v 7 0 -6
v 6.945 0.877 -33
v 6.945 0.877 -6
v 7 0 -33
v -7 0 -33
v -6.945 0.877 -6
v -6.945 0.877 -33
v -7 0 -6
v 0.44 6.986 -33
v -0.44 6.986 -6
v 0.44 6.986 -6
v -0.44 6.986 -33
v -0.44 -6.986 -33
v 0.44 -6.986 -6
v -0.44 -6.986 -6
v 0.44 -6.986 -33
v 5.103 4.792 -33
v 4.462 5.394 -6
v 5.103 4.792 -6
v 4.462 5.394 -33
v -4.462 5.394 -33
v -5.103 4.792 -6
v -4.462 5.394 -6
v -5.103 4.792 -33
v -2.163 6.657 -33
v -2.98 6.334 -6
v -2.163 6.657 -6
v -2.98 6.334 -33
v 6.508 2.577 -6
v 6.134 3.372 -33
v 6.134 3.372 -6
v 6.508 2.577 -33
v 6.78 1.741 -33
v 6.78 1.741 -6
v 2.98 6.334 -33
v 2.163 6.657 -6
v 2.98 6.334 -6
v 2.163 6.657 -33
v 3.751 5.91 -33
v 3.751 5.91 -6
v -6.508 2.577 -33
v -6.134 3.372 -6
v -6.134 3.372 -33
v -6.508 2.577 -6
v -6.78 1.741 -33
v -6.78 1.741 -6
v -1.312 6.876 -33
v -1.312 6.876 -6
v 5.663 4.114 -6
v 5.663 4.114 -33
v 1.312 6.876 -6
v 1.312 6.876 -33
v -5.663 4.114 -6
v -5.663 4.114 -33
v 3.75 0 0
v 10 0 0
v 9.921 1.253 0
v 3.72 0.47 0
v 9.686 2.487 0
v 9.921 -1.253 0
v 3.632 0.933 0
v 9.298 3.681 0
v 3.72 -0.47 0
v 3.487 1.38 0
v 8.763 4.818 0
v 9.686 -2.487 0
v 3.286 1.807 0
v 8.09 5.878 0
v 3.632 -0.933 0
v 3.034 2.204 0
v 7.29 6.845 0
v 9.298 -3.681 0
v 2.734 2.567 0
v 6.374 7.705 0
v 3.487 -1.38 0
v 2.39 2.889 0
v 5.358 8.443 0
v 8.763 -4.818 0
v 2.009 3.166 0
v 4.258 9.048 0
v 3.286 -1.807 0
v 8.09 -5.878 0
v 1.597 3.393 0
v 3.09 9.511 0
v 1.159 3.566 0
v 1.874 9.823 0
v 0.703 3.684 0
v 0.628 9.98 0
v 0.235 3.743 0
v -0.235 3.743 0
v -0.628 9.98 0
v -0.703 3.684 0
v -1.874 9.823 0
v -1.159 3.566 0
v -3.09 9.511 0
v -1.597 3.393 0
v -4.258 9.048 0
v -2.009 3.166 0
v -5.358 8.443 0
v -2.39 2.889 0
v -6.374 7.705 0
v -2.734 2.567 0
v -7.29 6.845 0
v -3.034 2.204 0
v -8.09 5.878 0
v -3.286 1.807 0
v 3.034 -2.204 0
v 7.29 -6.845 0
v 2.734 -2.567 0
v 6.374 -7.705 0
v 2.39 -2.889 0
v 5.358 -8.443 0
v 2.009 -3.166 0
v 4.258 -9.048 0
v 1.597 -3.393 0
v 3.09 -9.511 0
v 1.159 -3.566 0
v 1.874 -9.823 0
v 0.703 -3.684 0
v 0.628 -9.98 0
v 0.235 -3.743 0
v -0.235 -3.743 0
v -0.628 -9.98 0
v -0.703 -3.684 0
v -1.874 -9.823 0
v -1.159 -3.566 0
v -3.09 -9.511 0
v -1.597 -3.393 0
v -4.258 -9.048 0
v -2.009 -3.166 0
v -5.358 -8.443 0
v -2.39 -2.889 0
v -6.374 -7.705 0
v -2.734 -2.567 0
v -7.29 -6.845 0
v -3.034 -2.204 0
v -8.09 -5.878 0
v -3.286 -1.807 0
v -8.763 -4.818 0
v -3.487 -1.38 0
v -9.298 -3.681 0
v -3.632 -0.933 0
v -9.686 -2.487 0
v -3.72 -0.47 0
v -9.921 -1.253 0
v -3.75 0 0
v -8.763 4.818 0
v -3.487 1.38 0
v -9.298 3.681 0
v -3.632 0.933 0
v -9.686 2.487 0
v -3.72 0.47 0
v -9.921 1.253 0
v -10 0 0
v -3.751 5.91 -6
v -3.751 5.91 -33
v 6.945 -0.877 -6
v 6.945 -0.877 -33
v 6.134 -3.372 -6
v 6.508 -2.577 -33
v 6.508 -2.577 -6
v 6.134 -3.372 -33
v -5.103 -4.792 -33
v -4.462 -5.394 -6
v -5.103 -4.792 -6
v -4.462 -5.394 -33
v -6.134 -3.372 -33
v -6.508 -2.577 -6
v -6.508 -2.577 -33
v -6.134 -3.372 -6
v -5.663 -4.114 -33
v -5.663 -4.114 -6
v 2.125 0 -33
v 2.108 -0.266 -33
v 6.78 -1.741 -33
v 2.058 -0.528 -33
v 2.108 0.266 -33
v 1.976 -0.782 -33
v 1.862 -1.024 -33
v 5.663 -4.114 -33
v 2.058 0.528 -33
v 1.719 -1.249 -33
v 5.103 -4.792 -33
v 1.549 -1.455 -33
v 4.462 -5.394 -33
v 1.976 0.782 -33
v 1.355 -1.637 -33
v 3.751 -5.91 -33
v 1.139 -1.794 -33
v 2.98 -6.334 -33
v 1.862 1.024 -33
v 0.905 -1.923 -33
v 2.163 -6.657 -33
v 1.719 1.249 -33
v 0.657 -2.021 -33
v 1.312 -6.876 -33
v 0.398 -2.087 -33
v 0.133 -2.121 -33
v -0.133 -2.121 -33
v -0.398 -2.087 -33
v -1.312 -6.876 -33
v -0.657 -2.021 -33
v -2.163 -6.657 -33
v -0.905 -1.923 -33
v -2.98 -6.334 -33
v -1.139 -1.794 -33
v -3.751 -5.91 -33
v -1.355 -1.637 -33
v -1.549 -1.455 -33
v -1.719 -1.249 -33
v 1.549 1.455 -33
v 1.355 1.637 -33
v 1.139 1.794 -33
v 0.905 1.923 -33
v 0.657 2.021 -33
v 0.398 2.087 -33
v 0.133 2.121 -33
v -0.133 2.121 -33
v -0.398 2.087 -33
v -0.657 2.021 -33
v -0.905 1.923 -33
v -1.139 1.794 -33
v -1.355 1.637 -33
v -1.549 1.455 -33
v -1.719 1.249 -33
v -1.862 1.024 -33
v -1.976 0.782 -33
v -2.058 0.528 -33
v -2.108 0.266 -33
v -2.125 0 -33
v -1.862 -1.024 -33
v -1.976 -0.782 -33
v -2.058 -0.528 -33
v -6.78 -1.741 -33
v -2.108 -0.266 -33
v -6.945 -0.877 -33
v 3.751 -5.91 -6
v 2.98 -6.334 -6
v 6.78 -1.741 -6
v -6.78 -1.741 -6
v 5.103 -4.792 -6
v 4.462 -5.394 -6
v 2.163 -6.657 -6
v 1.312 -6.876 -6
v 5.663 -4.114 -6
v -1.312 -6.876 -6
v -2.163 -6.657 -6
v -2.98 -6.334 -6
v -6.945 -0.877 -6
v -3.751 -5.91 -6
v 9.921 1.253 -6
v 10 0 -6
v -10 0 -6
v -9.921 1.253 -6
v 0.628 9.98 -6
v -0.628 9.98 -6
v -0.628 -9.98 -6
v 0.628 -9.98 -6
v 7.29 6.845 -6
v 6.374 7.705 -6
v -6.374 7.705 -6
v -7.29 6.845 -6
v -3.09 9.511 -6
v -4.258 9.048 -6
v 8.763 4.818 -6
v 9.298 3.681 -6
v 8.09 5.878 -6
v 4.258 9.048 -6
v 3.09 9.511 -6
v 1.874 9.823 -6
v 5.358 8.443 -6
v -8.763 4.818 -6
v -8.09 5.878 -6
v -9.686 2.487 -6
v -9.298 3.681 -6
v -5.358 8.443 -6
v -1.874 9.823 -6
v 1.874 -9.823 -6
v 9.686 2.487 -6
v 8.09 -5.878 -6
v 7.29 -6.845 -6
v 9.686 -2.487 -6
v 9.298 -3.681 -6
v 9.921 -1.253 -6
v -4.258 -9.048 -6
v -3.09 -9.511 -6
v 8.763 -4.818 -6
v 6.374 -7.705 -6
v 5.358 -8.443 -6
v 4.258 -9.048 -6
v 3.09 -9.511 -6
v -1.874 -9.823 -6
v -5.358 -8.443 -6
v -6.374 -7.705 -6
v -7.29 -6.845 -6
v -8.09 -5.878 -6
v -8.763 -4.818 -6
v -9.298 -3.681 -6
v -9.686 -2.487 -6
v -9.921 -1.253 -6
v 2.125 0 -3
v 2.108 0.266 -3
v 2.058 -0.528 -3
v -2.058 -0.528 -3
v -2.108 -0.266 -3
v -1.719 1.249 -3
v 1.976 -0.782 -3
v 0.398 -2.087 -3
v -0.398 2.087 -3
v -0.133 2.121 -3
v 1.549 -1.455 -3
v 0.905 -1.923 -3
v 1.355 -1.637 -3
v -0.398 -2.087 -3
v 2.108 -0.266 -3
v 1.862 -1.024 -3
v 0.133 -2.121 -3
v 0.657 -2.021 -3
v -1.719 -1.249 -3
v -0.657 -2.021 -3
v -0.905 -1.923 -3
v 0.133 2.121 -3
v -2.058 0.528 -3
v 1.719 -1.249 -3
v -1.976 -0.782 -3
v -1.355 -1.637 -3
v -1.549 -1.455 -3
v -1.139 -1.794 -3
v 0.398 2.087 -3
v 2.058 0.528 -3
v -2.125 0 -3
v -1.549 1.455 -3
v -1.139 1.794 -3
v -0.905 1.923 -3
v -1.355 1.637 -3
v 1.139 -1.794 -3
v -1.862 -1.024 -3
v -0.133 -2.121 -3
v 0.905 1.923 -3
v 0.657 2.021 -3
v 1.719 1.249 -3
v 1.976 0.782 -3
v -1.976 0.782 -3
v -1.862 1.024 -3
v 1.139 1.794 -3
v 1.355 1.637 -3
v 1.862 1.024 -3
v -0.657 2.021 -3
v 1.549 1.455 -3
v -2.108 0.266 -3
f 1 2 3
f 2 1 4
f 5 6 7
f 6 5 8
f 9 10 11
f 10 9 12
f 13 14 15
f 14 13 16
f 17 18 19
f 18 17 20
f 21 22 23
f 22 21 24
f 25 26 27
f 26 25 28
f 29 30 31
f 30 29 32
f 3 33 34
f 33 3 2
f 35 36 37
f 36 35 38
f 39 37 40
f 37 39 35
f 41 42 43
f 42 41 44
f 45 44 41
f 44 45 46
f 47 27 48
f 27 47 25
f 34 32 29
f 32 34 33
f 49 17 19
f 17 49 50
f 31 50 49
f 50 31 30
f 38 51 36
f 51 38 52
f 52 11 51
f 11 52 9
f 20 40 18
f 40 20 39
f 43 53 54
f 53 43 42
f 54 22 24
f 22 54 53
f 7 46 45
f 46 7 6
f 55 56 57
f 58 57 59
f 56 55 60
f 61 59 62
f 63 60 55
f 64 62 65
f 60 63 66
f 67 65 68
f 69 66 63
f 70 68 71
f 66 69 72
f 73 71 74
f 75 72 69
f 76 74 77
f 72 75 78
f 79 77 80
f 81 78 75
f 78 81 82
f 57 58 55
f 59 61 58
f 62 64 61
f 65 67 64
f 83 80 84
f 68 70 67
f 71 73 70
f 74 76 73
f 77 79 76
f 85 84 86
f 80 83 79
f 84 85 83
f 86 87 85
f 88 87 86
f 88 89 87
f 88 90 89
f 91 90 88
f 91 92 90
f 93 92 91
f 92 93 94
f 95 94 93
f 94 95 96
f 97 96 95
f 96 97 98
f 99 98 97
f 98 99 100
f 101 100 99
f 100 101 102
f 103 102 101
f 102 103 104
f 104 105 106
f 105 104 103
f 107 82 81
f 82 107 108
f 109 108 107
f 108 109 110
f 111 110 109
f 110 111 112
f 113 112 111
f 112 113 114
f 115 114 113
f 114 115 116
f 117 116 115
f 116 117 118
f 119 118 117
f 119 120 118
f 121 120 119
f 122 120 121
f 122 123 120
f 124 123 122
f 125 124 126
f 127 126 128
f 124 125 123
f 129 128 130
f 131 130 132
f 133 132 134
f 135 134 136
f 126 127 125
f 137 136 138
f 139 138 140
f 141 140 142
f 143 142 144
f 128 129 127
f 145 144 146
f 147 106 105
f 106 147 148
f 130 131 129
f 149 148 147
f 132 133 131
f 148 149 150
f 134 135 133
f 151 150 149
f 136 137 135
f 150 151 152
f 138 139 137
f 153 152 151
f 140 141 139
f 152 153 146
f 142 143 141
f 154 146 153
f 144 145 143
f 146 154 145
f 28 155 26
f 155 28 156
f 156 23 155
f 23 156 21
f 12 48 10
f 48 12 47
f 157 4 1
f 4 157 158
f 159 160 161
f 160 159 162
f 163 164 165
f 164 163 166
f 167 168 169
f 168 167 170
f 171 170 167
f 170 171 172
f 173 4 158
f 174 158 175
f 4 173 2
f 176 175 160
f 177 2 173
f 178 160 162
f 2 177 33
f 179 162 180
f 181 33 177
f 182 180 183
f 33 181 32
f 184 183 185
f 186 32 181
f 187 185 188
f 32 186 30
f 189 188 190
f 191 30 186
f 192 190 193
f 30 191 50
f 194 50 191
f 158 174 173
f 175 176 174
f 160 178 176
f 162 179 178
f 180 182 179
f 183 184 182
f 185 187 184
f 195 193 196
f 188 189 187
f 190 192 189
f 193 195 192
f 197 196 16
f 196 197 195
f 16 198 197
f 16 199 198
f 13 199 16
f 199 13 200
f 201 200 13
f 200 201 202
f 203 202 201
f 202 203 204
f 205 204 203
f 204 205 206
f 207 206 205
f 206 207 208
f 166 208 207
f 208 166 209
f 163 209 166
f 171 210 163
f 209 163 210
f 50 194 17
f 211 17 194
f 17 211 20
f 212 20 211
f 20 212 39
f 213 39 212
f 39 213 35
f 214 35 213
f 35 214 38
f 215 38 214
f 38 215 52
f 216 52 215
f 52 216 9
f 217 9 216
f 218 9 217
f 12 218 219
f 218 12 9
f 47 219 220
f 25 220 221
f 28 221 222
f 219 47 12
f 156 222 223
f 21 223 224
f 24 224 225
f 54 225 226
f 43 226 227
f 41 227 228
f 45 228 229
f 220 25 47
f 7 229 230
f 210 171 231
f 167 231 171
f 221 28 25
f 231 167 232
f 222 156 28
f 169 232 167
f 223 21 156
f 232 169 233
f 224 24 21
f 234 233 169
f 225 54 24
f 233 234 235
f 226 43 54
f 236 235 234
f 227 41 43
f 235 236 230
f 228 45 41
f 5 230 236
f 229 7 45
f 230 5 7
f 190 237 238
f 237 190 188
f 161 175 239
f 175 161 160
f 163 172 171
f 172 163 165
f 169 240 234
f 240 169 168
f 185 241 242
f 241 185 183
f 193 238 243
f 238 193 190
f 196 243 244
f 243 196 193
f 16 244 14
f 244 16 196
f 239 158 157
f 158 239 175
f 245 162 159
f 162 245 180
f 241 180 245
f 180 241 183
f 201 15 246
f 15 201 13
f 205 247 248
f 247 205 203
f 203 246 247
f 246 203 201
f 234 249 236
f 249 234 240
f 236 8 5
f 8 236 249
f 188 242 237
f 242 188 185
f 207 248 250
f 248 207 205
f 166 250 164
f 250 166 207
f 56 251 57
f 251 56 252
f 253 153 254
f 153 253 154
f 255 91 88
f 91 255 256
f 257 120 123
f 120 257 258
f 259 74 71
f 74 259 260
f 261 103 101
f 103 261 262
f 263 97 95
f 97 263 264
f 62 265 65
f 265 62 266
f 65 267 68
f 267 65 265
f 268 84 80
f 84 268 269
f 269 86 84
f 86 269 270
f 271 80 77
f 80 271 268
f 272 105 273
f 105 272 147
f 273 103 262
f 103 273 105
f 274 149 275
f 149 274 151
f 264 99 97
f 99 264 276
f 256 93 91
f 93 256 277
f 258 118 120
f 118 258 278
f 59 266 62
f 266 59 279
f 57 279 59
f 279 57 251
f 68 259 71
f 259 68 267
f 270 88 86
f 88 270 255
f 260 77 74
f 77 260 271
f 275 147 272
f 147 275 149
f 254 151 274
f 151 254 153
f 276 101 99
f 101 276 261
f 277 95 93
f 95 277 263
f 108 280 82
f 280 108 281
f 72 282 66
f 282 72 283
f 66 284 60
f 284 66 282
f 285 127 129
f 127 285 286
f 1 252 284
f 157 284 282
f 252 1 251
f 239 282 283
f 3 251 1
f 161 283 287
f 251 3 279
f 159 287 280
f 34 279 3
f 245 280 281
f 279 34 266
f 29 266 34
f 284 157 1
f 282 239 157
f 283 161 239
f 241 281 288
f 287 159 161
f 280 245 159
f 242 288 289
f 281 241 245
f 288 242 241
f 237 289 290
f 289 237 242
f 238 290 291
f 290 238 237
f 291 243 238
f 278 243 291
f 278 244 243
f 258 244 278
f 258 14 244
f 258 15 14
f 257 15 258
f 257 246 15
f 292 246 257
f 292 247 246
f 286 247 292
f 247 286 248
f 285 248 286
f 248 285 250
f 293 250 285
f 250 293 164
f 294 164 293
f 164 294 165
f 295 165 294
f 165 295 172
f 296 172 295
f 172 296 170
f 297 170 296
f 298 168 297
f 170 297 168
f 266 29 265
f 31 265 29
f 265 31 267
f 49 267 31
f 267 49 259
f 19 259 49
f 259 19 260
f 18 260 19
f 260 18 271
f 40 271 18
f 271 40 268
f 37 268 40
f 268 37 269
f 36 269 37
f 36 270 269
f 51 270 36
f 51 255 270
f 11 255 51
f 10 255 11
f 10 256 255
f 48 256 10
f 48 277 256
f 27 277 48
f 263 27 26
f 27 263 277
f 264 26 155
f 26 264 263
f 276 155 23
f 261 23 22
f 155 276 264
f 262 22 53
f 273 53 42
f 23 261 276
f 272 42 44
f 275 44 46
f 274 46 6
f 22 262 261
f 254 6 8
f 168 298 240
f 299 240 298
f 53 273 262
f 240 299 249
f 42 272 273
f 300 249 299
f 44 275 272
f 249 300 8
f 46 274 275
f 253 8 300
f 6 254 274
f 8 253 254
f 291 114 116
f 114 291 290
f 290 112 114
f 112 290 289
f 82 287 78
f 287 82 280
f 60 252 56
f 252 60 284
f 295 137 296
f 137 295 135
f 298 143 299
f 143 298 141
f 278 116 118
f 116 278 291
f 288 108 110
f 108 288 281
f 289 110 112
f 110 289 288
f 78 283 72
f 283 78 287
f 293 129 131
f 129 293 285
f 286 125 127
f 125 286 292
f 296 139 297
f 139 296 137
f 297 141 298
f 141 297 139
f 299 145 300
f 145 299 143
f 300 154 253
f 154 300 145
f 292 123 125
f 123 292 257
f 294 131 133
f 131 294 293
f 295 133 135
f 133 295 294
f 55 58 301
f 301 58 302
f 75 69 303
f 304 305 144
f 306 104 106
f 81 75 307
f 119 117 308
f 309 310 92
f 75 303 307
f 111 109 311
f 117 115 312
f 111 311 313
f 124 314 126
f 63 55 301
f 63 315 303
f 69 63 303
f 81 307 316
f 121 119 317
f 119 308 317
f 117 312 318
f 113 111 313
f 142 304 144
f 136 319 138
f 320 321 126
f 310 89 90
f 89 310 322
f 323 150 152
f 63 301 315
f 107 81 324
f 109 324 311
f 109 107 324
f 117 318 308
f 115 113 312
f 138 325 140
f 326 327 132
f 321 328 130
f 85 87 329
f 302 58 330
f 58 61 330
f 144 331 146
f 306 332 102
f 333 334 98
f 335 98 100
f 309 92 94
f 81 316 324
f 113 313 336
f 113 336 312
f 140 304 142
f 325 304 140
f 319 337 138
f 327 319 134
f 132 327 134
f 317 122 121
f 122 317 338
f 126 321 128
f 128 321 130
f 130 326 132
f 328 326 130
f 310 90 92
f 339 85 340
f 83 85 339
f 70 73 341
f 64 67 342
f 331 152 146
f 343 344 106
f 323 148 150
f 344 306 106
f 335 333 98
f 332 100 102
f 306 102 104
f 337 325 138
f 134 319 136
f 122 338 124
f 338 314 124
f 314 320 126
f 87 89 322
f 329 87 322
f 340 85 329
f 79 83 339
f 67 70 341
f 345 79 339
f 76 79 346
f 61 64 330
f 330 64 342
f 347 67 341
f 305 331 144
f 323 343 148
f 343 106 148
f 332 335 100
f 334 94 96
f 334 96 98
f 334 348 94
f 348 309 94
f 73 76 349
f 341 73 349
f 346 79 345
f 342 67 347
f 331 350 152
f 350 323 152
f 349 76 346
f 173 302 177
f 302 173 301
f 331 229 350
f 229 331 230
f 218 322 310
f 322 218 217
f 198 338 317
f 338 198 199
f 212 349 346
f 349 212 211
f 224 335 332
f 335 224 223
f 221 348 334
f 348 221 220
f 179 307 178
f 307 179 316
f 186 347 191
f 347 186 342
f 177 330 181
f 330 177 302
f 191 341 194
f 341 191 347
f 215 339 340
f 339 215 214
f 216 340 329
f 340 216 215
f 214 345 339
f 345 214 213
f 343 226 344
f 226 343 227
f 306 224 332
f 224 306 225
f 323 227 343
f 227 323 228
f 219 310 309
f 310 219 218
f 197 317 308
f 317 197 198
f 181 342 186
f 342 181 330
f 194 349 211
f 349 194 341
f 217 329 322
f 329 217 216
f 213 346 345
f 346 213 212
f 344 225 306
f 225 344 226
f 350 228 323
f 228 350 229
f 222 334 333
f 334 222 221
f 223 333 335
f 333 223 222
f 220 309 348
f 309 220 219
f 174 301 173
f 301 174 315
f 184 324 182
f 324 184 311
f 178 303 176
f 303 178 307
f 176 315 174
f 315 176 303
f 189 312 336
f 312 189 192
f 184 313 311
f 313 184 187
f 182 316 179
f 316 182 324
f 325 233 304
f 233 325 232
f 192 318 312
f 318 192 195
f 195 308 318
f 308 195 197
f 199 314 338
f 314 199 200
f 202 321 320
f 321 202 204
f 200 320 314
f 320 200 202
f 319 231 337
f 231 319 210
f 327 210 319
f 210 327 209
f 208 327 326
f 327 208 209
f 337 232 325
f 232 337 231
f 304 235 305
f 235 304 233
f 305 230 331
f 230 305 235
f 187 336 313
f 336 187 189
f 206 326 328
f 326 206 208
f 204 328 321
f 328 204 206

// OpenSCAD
$fn = 50;


difference() {
	union() {
		translate(v = [0, 0, -33.0000000000]) {
			cylinder(h = 33, r = 7.0000000000);
		}
		translate(v = [0, 0, -6.0000000000]) {
			cylinder(h = 6, r = 10.0000000000);
		}
	}
	union() {
		translate(v = [0, 0, 0]) {
			rotate(a = [0, 0, 0]) {
				difference() {
					union() {
						#translate(v = [0, 0, -33.0000000000]) {
							cylinder(h = 33, r = 2.0000000000);
						}
						#translate(v = [0, 0, -3]) {
							cylinder(h = 3, r = 7.0000000000, r1 = 2.1250000000, r2 = 3.7500000000);
						}
						#translate(v = [0, 0, -33.0000000000]) {
							cylinder(h = 33, r = 2.1250000000);
						}
						#translate(v = [0, 0, -33.0000000000]) {
							cylinder(h = 33, r = 2.0000000000);
						}
					}
					union();
				}
			}
		}
	}
}
